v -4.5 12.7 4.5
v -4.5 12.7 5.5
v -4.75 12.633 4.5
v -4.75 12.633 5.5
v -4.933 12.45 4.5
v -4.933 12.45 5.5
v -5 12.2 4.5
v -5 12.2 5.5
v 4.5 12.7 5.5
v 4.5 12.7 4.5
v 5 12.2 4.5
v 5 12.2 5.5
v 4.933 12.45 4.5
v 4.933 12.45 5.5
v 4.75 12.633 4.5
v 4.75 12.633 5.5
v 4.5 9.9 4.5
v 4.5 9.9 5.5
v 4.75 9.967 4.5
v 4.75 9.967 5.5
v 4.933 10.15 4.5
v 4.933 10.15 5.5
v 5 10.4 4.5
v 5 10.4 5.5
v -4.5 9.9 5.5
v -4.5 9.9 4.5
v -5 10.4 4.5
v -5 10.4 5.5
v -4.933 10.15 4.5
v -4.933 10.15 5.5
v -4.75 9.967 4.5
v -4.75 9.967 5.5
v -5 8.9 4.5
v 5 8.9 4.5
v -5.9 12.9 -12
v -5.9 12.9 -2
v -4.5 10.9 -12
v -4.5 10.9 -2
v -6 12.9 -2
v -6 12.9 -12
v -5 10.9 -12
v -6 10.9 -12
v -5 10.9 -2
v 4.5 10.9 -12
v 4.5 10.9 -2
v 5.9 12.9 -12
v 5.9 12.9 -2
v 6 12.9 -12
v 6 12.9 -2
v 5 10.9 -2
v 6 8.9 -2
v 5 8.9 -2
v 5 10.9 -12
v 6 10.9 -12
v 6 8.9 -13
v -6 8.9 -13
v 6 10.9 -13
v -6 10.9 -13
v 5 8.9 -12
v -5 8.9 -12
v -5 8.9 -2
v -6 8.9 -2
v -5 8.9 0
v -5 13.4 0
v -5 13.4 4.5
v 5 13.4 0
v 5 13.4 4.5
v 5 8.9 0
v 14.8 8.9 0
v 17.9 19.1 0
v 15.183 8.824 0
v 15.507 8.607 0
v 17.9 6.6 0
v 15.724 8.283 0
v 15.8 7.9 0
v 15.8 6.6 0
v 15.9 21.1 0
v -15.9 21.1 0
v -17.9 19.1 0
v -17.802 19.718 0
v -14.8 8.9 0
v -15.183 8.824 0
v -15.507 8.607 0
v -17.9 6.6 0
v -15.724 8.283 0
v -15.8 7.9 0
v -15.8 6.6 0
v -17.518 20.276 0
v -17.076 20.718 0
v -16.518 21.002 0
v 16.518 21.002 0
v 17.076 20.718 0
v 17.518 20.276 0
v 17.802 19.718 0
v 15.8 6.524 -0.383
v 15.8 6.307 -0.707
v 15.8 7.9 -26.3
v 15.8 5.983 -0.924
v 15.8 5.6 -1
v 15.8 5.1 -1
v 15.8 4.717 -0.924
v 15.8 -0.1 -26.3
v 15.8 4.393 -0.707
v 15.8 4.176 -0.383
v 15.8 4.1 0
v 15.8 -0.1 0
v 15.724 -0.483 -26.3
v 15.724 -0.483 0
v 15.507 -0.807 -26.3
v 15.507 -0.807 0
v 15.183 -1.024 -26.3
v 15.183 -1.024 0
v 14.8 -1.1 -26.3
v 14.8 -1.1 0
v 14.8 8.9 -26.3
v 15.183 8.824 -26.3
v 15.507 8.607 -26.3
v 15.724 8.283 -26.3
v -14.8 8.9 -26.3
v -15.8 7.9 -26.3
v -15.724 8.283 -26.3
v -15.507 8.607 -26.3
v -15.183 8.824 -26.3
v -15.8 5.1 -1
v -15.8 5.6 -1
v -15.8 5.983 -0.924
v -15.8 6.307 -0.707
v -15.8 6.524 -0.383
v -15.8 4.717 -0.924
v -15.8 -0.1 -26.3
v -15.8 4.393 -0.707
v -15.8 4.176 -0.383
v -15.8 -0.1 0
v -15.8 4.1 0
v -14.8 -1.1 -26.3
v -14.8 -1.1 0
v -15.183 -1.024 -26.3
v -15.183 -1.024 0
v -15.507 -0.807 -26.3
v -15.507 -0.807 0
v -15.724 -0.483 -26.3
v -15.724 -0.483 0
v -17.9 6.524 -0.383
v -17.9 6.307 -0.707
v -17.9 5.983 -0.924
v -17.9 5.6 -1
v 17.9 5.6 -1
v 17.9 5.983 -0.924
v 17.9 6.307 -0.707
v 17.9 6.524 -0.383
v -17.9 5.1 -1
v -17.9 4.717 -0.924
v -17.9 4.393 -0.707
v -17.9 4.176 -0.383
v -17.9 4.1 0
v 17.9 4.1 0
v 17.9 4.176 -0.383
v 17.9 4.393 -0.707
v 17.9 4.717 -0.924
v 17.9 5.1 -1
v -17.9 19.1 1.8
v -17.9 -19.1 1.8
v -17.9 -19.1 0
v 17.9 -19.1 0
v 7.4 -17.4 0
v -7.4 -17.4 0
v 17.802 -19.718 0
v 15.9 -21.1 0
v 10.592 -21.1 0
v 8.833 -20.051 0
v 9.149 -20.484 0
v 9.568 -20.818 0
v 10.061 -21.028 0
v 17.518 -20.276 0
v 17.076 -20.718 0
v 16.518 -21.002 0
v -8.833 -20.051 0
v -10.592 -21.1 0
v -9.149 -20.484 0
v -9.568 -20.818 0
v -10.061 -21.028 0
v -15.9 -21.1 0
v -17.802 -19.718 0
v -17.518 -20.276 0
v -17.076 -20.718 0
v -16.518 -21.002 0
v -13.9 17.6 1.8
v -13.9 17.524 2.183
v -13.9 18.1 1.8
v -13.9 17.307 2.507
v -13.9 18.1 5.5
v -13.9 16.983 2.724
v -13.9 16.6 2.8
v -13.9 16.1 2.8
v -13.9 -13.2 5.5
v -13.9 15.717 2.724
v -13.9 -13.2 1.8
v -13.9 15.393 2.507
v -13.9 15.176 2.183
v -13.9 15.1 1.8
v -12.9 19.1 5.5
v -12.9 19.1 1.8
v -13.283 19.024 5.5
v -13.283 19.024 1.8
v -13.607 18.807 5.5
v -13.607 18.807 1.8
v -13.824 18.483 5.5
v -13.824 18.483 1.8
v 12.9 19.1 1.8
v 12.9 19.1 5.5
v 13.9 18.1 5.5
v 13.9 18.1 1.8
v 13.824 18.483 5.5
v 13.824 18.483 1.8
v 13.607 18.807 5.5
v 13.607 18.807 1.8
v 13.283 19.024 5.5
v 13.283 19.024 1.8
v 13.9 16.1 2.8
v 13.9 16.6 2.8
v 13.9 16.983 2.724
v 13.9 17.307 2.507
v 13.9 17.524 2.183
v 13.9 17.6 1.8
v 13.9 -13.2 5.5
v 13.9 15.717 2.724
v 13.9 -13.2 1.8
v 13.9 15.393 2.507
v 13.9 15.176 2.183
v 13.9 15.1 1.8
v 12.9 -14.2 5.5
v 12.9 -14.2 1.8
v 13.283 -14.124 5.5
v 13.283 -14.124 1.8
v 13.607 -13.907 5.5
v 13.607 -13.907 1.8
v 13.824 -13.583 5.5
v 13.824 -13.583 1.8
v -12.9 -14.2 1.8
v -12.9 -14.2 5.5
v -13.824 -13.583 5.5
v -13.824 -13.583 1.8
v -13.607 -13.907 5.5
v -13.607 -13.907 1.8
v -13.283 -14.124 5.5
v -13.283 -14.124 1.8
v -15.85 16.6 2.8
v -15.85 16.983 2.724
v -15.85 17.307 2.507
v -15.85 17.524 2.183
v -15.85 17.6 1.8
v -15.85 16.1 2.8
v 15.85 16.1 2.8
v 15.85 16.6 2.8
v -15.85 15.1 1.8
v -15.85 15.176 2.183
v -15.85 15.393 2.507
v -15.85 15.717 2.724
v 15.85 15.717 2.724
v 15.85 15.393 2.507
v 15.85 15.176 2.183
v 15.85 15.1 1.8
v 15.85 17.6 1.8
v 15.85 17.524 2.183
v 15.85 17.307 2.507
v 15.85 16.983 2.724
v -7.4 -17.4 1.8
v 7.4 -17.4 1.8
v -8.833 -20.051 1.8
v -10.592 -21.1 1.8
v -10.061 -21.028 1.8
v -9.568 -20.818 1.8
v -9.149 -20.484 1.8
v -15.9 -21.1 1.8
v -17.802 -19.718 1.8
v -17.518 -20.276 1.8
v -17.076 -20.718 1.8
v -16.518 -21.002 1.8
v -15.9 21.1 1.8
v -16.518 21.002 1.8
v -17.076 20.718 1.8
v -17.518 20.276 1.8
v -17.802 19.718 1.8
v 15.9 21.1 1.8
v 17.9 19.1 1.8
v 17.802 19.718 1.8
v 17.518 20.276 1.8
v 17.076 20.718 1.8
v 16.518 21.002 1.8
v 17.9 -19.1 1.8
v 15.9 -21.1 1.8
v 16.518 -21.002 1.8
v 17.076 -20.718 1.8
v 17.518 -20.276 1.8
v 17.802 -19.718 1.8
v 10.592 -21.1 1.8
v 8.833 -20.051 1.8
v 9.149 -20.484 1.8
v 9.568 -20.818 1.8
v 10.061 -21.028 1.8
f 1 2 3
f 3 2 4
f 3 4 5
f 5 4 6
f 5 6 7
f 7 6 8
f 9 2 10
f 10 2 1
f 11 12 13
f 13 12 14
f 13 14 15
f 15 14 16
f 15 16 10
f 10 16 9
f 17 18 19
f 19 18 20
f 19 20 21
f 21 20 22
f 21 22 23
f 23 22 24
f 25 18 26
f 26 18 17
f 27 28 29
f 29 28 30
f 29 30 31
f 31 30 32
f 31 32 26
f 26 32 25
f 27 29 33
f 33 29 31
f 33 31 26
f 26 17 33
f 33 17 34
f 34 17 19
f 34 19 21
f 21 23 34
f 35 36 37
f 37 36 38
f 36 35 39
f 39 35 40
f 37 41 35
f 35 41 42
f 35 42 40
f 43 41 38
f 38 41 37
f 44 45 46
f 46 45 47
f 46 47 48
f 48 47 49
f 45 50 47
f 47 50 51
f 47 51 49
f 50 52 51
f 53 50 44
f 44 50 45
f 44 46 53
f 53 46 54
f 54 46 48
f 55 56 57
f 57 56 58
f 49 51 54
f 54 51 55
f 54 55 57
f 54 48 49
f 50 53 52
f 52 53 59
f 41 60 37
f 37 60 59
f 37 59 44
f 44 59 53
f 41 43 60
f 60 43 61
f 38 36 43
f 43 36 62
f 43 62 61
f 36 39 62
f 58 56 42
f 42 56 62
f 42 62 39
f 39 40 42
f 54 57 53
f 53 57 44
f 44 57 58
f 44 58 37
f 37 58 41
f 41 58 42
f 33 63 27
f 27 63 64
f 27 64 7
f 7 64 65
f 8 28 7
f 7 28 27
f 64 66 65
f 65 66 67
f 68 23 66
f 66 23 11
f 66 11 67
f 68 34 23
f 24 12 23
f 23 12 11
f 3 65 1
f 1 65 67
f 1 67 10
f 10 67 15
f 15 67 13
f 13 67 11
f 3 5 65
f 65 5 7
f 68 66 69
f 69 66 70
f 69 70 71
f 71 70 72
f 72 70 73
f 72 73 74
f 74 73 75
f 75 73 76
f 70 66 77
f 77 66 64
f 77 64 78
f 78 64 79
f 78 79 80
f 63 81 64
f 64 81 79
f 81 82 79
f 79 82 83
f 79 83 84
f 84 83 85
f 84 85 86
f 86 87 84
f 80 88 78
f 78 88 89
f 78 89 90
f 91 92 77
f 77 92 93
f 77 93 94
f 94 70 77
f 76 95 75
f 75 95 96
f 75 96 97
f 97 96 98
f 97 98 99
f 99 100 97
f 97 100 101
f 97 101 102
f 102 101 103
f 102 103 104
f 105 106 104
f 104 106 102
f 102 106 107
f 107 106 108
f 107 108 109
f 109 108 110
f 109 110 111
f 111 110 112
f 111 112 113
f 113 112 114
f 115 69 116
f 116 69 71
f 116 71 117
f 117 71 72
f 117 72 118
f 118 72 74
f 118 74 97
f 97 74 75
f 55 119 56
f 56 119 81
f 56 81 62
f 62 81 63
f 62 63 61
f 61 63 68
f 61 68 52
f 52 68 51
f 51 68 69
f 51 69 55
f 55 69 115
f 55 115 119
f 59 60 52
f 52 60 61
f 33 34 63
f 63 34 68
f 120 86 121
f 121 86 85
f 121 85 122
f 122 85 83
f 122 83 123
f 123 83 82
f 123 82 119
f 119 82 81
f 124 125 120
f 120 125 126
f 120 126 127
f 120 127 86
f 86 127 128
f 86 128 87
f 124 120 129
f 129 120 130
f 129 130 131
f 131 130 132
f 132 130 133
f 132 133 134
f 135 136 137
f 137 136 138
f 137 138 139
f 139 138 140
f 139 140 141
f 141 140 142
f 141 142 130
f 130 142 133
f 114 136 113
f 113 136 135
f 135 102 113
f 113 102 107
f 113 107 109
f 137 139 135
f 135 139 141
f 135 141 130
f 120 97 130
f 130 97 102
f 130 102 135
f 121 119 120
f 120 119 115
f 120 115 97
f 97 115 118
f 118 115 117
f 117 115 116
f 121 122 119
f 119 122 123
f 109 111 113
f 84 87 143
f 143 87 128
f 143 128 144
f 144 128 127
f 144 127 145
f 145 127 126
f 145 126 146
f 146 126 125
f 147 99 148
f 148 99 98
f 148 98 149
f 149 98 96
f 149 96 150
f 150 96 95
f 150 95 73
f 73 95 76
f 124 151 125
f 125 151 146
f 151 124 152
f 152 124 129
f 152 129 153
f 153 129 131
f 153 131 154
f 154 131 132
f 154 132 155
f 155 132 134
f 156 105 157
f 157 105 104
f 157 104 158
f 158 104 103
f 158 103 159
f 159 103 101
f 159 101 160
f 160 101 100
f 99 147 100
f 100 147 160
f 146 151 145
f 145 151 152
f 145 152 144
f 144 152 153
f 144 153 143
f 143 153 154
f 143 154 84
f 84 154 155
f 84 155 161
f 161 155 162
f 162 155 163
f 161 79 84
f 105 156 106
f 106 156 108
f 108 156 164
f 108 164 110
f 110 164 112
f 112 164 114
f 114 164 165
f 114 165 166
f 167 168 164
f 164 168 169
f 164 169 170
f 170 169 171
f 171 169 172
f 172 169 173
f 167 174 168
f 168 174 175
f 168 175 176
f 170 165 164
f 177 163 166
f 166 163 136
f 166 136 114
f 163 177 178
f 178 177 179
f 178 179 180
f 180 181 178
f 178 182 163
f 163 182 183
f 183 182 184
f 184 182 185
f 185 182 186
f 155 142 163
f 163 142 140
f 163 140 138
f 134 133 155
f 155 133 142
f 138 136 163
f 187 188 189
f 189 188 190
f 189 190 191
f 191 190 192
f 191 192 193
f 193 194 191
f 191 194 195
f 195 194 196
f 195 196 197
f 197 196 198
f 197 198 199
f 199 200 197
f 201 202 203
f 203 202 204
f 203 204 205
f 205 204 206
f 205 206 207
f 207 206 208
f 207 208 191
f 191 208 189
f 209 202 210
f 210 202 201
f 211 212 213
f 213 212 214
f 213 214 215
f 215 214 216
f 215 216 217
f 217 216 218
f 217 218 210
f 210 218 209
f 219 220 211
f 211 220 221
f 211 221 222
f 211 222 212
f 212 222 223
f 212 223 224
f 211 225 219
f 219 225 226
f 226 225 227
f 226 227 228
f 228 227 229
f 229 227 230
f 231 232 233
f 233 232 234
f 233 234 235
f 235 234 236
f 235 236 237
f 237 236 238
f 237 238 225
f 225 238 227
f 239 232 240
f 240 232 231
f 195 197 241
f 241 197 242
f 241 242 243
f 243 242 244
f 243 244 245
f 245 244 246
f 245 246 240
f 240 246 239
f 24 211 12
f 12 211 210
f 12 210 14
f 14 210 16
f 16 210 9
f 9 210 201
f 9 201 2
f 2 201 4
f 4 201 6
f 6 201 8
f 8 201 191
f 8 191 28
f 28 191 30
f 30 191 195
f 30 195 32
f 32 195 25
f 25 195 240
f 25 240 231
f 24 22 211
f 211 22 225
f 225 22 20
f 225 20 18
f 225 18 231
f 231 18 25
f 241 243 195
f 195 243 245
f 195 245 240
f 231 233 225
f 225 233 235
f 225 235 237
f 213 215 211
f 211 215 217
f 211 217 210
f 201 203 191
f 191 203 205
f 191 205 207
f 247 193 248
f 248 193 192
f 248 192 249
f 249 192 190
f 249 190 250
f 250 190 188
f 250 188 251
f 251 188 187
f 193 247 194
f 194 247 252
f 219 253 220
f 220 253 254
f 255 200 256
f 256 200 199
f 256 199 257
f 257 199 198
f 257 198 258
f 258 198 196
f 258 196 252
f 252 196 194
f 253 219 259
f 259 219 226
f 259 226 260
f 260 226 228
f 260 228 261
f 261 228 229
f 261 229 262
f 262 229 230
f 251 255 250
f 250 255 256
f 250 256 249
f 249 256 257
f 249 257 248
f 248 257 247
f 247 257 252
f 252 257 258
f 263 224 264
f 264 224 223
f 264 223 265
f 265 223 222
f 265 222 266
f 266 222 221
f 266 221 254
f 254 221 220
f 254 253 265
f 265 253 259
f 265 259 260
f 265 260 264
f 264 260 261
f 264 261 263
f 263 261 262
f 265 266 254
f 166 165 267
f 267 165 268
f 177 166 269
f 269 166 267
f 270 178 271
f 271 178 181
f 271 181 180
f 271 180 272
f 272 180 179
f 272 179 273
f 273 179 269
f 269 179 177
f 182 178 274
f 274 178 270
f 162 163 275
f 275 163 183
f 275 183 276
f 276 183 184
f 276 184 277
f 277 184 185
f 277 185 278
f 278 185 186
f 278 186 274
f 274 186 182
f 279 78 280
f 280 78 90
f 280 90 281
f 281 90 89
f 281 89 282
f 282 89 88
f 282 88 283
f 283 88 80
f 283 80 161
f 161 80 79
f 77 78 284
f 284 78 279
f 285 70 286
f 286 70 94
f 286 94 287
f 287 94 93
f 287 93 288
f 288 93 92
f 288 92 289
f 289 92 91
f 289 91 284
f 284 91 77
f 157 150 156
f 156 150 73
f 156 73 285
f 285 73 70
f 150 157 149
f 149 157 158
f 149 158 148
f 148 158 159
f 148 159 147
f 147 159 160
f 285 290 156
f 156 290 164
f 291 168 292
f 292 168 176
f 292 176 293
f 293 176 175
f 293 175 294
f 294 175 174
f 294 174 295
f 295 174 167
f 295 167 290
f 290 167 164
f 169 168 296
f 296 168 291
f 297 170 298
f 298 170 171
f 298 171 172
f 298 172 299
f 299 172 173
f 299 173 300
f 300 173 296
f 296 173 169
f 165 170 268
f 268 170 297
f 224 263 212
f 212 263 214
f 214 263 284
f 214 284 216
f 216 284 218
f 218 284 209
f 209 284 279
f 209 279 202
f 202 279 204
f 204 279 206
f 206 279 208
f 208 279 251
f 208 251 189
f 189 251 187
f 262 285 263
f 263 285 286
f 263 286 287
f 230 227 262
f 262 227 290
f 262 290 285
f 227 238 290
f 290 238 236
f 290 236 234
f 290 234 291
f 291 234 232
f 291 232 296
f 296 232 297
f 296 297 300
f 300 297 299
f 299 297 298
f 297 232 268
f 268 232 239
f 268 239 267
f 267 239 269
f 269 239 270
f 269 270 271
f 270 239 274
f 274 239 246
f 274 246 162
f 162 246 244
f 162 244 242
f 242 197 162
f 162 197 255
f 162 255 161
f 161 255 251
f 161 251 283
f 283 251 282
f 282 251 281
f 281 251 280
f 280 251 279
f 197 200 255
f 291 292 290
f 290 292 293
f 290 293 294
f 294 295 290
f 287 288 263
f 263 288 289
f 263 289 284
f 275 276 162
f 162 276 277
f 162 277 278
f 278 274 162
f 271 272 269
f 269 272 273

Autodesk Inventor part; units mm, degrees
ref_plane "YZ Plane" through (0, 0, 0) normal (1, 0, 0) x (0, 1, 0)
ref_plane "XZ Plane" through (0, 0, 0) normal (0, 1, 0) x (-1, 0, 0)
ref_plane "XY Plane" through (0, 0, 0) normal (0, 0, 1) x (1, 0, 0)
sketch "Sketch1" plane through (0, 0, 0) normal (0, 0, 1) x (1, 0, 0)
  line L0 (17.9, -19.1) -> (17.9, 19.1)
  line L1 (15.9, 21.1) -> (-15.9, 21.1)
  line L2 (-17.9, 19.1) -> (-17.9, -19.1)
  line L3 (-15.9, -21.1) -> (-10.5924, -21.1)
  line L4 (17.9, -21.1) -> (-17.9, 21.1) construction
  line L5 (17.9, 21.1) -> (-17.9, -21.1) construction
  line L6 (-7.4, -17.4) -> (7.4, -17.4)
  line L7 (-7.4, -17.4) -> (-8.833, -20.051)
  line L8 (7.4, -17.4) -> (8.833, -20.051)
  line L9 (10.5924, -21.1) -> (15.9, -21.1)
  line L10 (-9.4, -21.1) -> (9.4, -21.1)
  arc A0 (-15.9, 21.1) -> (-17.9, 19.1) centre (-15.9, 19.1) ccw
  arc A1 (17.9, 19.1) -> (15.9, 21.1) centre (15.9, 19.1) ccw
  arc A2 (15.9, -21.1) -> (17.9, -19.1) centre (15.9, -19.1) ccw
  arc A3 (8.833, -20.051) -> (10.5924, -21.1) centre (10.5924, -19.1) ccw
  arc A4 (-10.5924, -21.1) -> (-8.833, -20.051) centre (-10.5924, -19.1) ccw
  arc A5 (-17.9, -19.1) -> (-15.9, -21.1) centre (-15.9, -19.1) ccw
  point P0 (0, 0)
  dimension "d0" = 35.8
  dimension "d1" = 42.2
  dimension "d2" = 38.5
  dimension "d3" = 10.5
  dimension "d4" = 10.5
  dimension "d5" = 8.5
  dimension "d6" = 8.5
  dimension "d7" = 2
extrude "Extrusion1" add sketch "Sketch1" along normal blind 1.8
sketch "Sketch2" plane through (0, 0, 1.8) normal (0, 0, 1) x (1, 0, 0)
  line L0 (-15.85, 15.1) -> (15.85, 15.1)
  line L1 (15.85, 15.1) -> (15.85, 17.6)
  line L2 (15.85, 17.6) -> (-15.85, 17.6)
  line L3 (-15.85, 17.6) -> (-15.85, 15.1)
  line L4 (-15.85, 15.1) -> (15.85, 17.6) construction
  line L5 (15.85, 15.1) -> (-15.85, 17.6) construction
  line L6 (15.9, 21.1) -> (-15.9, 21.1) projected
  point P0 (0, 0)
  point P1 (0, 16.35)
  point P2 (0, 16.35)
  point P3 (15.85, 16.35)
  point P4 (-15.85, 16.35)
  dimension "d10" = 2.5
  dimension "d11" = 6
  dimension "d12" = 31.7
extrude "Extrusion2" add sketch "Sketch2" along normal blind 1
fillet "Fillet1" radius 1 2 edges at (0, 17.6, 2.8) (0, 15.1, 2.8)
sketch "Sketch3" plane through (0, 0, 1.8) normal (0, 0, 1) x (1, 0, 0)
  line L0 (-12.9, 19.1) -> (12.9, 19.1)
  line L1 (13.9, 18.1) -> (13.9, -13.2)
  line L2 (12.9, -14.2) -> (-12.9, -14.2)
  line L3 (-13.9, -13.2) -> (-13.9, 18.1)
  line L4 (15.9, 21.1) -> (-15.9, 21.1) projected
  line L5 (-13.9, 2.9131) -> (-17.9, 2.9131)
  line L6 (-17.9, 19.1) -> (-17.9, -19.1) projected
  line L7 (13.9, 2.9131) -> (17.9, 2.9131)
  line L8 (17.9, -19.1) -> (17.9, 19.1) projected
  arc A0 (-12.9, 19.1) -> (-13.9, 18.1) centre (-12.9, 18.1) ccw
  arc A1 (13.9, 18.1) -> (12.9, 19.1) centre (12.9, 18.1) ccw
  arc A2 (12.9, -14.2) -> (13.9, -13.2) centre (12.9, -13.2) ccw
  arc A3 (-13.9, -13.2) -> (-12.9, -14.2) centre (-12.9, -13.2) ccw
  point P0 (0, 0)
  point P1 (13.9, -14.2)
  point P2 (13.9, 19.1)
  point P3 (-13.9, -14.2)
  dimension "d16" = 27.8
  dimension "d17" = 33.3
  dimension "d18" = 2
  dimension "d19" = 1
extrude "Extrusion3" add sketch "Sketch3" along normal blind 3.7
sketch "Sketch4" plane through (0, 0, 0) normal (0, 0, -1) x (-1, 0, 0)
  line L0 (-17.9, -19.1) -> (-17.9, 19.1) projected
  line L1 (17.9, 19.1) -> (17.9, -19.1) projected
  line L2 (-17.9, 6.6) -> (17.9, 6.6)
  line L3 (17.9, 6.6) -> (17.9, 4.1)
  line L4 (17.9, 4.1) -> (-17.9, 4.1)
  line L5 (-17.9, 4.1) -> (-17.9, 6.6)
  line L6 (-15.9, 21.1) -> (15.9, 21.1) projected
  point P0 (0, 0)
  dimension "d22" = 2.5
  dimension "d23" = 17
extrude "Extrusion4" add sketch "Sketch4" along normal blind 1
fillet "Fillet2" radius 1 2 edges at (0, 6.6, -1) (0, 4.1, -1)
sketch "Sketch5" plane through (0, 0, 0) normal (0, 0, -1) x (-1, 0, 0)
  line L0 (-14.8, 8.9) -> (14.8, 8.9)
  line L1 (15.8, 7.9) -> (15.8, -0.1)
  line L2 (14.8, -1.1) -> (-14.8, -1.1)
  line L3 (-15.8, -0.1) -> (-15.8, 7.9)
  line L4 (-15.9, 21.1) -> (15.9, 21.1) projected
  line L5 (-17.9, 6.6) -> (-17.9, 19.1) projected
  line L6 (17.9, 4.1) -> (17.9, -19.1) projected
  arc A0 (-15.8, -0.1) -> (-14.8, -1.1) centre (-14.8, -0.1) ccw
  arc A1 (-14.8, 8.9) -> (-15.8, 7.9) centre (-14.8, 7.9) ccw
  arc A2 (15.8, 7.9) -> (14.8, 8.9) centre (14.8, 7.9) ccw
  arc A3 (14.8, -1.1) -> (15.8, -0.1) centre (14.8, -0.1) ccw
  point P0 (0, 0)
  point P1 (0, 8.9)
  dimension "d27" = 22.2
  dimension "d28" = 2.1
  dimension "d29" = 10
  dimension "d30" = 2.1
  dimension "d31" = 1
extrude "Extrusion5" add sketch "Sketch5" along normal blind 26.3
sketch "Sketch6" plane through (0, 0, 0) normal (0, 0, -1) x (-1, 0, 0)
  line L0 (-5, 13.4) -> (5, 13.4)
  line L1 (5, 13.4) -> (5, 8.9)
  line L2 (5, 8.9) -> (-5, 8.9)
  line L3 (-5, 8.9) -> (-5, 13.4)
  line L4 (14.8, 8.9) -> (-14.8, 8.9) projected
  line L5 (5, 13.4) -> (17.9, 13.4)
  line L6 (17.9, 19.1) -> (17.9, 6.6) projected
  line L7 (-5, 13.4) -> (-17.9, 13.4)
  line L8 (-17.9, -19.1) -> (-17.9, 19.1) projected
  point P0 (0, 0)
  point P1 (-5, 11.15)
  dimension "d34" = 10
  dimension "d60" = 4.5
extrude "Extrusion6" cut sketch "Sketch6" against normal blind 4.5
sketch "Sketch7" plane through (-14.8, 8.9, -26.3) normal (0, 1, 0) x (1, 0, 0)
  line L0 (9.8, -30.8) -> (19.8, -30.8) projected
  line L1 (14.8, -30.8) -> (14.8, -14.3)
  line L2 (8.8, -14.3) -> (20.8, -14.3)
  line L3 (20.8, -14.3) -> (20.8, -13.3)
  line L4 (20.8, -13.3) -> (8.8, -13.3)
  line L5 (8.8, -13.3) -> (8.8, -14.3)
  line L6 (20.8, -14.3) -> (20.8, -24.3)
  line L7 (20.8, -24.3) -> (19.8, -24.3)
  line L8 (19.8, -24.3) -> (19.8, -14.3)
  line L9 (8.8, -14.3) -> (8.8, -24.3)
  line L10 (8.8, -24.3) -> (9.8, -24.3)
  line L11 (9.8, -24.3) -> (9.8, -14.3)
  point P0 (14.8, -26.3)
  point P1 (20.3, -24.3)
  dimension "d38" = 12
  dimension "d39" = 1
  dimension "d40" = 1
  dimension "d58" = 16.5
  dimension "d59" = 10
extrude "Extrusion7" add sketch "Sketch7" along normal blind 2
sketch "Sketch8" plane through (-14.8, 10.9, -26.3) normal (0, 1, 0) x (1, 0, 0)
  line L0 (9.8, -14.3) -> (19.8, -14.3) projected
  line L1 (20.8, -24.3) -> (20.8, -13.3) projected
  line L2 (19.8, -14.3) -> (20.8, -14.3)
  line L3 (20.8, -14.3) -> (20.8, -24.3)
  line L4 (20.8, -24.3) -> (19.8, -24.3)
  line L5 (19.8, -24.3) -> (19.8, -14.3)
  line L6 (9.8, -14.3) -> (9.8, -30.8) projected
  line L7 (8.8, -24.3) -> (8.8, -13.3) projected
  line L8 (9.8, -14.3) -> (8.8, -14.3)
  line L9 (8.8, -14.3) -> (8.8, -24.3)
  line L10 (8.8, -24.3) -> (9.8, -24.3)
  line L11 (9.8, -24.3) -> (9.8, -14.3)
  point P0 (14.8, -26.3)
  point P1 (9.8, -24.3)
  point P2 (9.8, -24.3)
  point P3 (8.8, -14.3)
  point P4 (20.8, -26.3)
  point P5 (8.8, -26.3)
extrude "Extrusion8" add sketch "Sketch8" along normal blind 2
sketch "Sketch9" plane through (5, 8.9, -12) normal (-1, 0, 0) x (0, 0, 1)
  line L0 (0, 2) -> (0, 4) projected
  line L1 (10, 0) -> (10, 4) projected
  line L2 (0, 4) -> (10, 4)
  line L3 (10, 4) -> (10, 2)
  line L4 (10, 2) -> (0, 2)
  line L5 (0, 2) -> (0, 4)
  point P0 (12, -8.9)
extrude "Extrusion9" add sketch "Sketch9" along normal blind 0.5
chamfer "Chamfer1" distance 2 angle 35 1 edges at (4.5, 12.9, -7) measured on face at (4.5, 12.2333, -8.6667)
mirror "Mirror1" about plane through (0, 0, 0) normal (1, 0, 0) of "Extrusion9", "Chamfer1"
sketch "Sketch10" plane through (0, 0, 4.5) normal (0, 0, -1) x (-1, 0, 0)
  line L0 (-4.5, 9.9) -> (4.5, 9.9)
  line L1 (5, 10.4) -> (5, 12.2)
  line L2 (4.5, 12.7) -> (-4.5, 12.7)
  line L3 (-5, 12.2) -> (-5, 10.4)
  line L4 (5, 8.9) -> (-5, 8.9) projected
  line L5 (-5, 8.9) -> (-5, 13.4) projected
  arc A0 (-5, 10.4) -> (-4.5, 9.9) centre (-4.5, 10.4) ccw
  arc A1 (-4.5, 12.7) -> (-5, 12.2) centre (-4.5, 12.2) ccw
  arc A2 (5, 12.2) -> (4.5, 12.7) centre (4.5, 12.2) ccw
  arc A3 (4.5, 9.9) -> (5, 10.4) centre (4.5, 10.4) ccw
  point P0 (0, 0)
  point P1 (-5, 11.3)
  dimension "d51" = 1
  dimension "d52" = 10
  dimension "d53" = 0.5
  dimension "d54" = 2.8
extrude "Extrusion10" cut sketch "Sketch10" against normal blind 2
properties part number "PS2 USB C PD Mount"
